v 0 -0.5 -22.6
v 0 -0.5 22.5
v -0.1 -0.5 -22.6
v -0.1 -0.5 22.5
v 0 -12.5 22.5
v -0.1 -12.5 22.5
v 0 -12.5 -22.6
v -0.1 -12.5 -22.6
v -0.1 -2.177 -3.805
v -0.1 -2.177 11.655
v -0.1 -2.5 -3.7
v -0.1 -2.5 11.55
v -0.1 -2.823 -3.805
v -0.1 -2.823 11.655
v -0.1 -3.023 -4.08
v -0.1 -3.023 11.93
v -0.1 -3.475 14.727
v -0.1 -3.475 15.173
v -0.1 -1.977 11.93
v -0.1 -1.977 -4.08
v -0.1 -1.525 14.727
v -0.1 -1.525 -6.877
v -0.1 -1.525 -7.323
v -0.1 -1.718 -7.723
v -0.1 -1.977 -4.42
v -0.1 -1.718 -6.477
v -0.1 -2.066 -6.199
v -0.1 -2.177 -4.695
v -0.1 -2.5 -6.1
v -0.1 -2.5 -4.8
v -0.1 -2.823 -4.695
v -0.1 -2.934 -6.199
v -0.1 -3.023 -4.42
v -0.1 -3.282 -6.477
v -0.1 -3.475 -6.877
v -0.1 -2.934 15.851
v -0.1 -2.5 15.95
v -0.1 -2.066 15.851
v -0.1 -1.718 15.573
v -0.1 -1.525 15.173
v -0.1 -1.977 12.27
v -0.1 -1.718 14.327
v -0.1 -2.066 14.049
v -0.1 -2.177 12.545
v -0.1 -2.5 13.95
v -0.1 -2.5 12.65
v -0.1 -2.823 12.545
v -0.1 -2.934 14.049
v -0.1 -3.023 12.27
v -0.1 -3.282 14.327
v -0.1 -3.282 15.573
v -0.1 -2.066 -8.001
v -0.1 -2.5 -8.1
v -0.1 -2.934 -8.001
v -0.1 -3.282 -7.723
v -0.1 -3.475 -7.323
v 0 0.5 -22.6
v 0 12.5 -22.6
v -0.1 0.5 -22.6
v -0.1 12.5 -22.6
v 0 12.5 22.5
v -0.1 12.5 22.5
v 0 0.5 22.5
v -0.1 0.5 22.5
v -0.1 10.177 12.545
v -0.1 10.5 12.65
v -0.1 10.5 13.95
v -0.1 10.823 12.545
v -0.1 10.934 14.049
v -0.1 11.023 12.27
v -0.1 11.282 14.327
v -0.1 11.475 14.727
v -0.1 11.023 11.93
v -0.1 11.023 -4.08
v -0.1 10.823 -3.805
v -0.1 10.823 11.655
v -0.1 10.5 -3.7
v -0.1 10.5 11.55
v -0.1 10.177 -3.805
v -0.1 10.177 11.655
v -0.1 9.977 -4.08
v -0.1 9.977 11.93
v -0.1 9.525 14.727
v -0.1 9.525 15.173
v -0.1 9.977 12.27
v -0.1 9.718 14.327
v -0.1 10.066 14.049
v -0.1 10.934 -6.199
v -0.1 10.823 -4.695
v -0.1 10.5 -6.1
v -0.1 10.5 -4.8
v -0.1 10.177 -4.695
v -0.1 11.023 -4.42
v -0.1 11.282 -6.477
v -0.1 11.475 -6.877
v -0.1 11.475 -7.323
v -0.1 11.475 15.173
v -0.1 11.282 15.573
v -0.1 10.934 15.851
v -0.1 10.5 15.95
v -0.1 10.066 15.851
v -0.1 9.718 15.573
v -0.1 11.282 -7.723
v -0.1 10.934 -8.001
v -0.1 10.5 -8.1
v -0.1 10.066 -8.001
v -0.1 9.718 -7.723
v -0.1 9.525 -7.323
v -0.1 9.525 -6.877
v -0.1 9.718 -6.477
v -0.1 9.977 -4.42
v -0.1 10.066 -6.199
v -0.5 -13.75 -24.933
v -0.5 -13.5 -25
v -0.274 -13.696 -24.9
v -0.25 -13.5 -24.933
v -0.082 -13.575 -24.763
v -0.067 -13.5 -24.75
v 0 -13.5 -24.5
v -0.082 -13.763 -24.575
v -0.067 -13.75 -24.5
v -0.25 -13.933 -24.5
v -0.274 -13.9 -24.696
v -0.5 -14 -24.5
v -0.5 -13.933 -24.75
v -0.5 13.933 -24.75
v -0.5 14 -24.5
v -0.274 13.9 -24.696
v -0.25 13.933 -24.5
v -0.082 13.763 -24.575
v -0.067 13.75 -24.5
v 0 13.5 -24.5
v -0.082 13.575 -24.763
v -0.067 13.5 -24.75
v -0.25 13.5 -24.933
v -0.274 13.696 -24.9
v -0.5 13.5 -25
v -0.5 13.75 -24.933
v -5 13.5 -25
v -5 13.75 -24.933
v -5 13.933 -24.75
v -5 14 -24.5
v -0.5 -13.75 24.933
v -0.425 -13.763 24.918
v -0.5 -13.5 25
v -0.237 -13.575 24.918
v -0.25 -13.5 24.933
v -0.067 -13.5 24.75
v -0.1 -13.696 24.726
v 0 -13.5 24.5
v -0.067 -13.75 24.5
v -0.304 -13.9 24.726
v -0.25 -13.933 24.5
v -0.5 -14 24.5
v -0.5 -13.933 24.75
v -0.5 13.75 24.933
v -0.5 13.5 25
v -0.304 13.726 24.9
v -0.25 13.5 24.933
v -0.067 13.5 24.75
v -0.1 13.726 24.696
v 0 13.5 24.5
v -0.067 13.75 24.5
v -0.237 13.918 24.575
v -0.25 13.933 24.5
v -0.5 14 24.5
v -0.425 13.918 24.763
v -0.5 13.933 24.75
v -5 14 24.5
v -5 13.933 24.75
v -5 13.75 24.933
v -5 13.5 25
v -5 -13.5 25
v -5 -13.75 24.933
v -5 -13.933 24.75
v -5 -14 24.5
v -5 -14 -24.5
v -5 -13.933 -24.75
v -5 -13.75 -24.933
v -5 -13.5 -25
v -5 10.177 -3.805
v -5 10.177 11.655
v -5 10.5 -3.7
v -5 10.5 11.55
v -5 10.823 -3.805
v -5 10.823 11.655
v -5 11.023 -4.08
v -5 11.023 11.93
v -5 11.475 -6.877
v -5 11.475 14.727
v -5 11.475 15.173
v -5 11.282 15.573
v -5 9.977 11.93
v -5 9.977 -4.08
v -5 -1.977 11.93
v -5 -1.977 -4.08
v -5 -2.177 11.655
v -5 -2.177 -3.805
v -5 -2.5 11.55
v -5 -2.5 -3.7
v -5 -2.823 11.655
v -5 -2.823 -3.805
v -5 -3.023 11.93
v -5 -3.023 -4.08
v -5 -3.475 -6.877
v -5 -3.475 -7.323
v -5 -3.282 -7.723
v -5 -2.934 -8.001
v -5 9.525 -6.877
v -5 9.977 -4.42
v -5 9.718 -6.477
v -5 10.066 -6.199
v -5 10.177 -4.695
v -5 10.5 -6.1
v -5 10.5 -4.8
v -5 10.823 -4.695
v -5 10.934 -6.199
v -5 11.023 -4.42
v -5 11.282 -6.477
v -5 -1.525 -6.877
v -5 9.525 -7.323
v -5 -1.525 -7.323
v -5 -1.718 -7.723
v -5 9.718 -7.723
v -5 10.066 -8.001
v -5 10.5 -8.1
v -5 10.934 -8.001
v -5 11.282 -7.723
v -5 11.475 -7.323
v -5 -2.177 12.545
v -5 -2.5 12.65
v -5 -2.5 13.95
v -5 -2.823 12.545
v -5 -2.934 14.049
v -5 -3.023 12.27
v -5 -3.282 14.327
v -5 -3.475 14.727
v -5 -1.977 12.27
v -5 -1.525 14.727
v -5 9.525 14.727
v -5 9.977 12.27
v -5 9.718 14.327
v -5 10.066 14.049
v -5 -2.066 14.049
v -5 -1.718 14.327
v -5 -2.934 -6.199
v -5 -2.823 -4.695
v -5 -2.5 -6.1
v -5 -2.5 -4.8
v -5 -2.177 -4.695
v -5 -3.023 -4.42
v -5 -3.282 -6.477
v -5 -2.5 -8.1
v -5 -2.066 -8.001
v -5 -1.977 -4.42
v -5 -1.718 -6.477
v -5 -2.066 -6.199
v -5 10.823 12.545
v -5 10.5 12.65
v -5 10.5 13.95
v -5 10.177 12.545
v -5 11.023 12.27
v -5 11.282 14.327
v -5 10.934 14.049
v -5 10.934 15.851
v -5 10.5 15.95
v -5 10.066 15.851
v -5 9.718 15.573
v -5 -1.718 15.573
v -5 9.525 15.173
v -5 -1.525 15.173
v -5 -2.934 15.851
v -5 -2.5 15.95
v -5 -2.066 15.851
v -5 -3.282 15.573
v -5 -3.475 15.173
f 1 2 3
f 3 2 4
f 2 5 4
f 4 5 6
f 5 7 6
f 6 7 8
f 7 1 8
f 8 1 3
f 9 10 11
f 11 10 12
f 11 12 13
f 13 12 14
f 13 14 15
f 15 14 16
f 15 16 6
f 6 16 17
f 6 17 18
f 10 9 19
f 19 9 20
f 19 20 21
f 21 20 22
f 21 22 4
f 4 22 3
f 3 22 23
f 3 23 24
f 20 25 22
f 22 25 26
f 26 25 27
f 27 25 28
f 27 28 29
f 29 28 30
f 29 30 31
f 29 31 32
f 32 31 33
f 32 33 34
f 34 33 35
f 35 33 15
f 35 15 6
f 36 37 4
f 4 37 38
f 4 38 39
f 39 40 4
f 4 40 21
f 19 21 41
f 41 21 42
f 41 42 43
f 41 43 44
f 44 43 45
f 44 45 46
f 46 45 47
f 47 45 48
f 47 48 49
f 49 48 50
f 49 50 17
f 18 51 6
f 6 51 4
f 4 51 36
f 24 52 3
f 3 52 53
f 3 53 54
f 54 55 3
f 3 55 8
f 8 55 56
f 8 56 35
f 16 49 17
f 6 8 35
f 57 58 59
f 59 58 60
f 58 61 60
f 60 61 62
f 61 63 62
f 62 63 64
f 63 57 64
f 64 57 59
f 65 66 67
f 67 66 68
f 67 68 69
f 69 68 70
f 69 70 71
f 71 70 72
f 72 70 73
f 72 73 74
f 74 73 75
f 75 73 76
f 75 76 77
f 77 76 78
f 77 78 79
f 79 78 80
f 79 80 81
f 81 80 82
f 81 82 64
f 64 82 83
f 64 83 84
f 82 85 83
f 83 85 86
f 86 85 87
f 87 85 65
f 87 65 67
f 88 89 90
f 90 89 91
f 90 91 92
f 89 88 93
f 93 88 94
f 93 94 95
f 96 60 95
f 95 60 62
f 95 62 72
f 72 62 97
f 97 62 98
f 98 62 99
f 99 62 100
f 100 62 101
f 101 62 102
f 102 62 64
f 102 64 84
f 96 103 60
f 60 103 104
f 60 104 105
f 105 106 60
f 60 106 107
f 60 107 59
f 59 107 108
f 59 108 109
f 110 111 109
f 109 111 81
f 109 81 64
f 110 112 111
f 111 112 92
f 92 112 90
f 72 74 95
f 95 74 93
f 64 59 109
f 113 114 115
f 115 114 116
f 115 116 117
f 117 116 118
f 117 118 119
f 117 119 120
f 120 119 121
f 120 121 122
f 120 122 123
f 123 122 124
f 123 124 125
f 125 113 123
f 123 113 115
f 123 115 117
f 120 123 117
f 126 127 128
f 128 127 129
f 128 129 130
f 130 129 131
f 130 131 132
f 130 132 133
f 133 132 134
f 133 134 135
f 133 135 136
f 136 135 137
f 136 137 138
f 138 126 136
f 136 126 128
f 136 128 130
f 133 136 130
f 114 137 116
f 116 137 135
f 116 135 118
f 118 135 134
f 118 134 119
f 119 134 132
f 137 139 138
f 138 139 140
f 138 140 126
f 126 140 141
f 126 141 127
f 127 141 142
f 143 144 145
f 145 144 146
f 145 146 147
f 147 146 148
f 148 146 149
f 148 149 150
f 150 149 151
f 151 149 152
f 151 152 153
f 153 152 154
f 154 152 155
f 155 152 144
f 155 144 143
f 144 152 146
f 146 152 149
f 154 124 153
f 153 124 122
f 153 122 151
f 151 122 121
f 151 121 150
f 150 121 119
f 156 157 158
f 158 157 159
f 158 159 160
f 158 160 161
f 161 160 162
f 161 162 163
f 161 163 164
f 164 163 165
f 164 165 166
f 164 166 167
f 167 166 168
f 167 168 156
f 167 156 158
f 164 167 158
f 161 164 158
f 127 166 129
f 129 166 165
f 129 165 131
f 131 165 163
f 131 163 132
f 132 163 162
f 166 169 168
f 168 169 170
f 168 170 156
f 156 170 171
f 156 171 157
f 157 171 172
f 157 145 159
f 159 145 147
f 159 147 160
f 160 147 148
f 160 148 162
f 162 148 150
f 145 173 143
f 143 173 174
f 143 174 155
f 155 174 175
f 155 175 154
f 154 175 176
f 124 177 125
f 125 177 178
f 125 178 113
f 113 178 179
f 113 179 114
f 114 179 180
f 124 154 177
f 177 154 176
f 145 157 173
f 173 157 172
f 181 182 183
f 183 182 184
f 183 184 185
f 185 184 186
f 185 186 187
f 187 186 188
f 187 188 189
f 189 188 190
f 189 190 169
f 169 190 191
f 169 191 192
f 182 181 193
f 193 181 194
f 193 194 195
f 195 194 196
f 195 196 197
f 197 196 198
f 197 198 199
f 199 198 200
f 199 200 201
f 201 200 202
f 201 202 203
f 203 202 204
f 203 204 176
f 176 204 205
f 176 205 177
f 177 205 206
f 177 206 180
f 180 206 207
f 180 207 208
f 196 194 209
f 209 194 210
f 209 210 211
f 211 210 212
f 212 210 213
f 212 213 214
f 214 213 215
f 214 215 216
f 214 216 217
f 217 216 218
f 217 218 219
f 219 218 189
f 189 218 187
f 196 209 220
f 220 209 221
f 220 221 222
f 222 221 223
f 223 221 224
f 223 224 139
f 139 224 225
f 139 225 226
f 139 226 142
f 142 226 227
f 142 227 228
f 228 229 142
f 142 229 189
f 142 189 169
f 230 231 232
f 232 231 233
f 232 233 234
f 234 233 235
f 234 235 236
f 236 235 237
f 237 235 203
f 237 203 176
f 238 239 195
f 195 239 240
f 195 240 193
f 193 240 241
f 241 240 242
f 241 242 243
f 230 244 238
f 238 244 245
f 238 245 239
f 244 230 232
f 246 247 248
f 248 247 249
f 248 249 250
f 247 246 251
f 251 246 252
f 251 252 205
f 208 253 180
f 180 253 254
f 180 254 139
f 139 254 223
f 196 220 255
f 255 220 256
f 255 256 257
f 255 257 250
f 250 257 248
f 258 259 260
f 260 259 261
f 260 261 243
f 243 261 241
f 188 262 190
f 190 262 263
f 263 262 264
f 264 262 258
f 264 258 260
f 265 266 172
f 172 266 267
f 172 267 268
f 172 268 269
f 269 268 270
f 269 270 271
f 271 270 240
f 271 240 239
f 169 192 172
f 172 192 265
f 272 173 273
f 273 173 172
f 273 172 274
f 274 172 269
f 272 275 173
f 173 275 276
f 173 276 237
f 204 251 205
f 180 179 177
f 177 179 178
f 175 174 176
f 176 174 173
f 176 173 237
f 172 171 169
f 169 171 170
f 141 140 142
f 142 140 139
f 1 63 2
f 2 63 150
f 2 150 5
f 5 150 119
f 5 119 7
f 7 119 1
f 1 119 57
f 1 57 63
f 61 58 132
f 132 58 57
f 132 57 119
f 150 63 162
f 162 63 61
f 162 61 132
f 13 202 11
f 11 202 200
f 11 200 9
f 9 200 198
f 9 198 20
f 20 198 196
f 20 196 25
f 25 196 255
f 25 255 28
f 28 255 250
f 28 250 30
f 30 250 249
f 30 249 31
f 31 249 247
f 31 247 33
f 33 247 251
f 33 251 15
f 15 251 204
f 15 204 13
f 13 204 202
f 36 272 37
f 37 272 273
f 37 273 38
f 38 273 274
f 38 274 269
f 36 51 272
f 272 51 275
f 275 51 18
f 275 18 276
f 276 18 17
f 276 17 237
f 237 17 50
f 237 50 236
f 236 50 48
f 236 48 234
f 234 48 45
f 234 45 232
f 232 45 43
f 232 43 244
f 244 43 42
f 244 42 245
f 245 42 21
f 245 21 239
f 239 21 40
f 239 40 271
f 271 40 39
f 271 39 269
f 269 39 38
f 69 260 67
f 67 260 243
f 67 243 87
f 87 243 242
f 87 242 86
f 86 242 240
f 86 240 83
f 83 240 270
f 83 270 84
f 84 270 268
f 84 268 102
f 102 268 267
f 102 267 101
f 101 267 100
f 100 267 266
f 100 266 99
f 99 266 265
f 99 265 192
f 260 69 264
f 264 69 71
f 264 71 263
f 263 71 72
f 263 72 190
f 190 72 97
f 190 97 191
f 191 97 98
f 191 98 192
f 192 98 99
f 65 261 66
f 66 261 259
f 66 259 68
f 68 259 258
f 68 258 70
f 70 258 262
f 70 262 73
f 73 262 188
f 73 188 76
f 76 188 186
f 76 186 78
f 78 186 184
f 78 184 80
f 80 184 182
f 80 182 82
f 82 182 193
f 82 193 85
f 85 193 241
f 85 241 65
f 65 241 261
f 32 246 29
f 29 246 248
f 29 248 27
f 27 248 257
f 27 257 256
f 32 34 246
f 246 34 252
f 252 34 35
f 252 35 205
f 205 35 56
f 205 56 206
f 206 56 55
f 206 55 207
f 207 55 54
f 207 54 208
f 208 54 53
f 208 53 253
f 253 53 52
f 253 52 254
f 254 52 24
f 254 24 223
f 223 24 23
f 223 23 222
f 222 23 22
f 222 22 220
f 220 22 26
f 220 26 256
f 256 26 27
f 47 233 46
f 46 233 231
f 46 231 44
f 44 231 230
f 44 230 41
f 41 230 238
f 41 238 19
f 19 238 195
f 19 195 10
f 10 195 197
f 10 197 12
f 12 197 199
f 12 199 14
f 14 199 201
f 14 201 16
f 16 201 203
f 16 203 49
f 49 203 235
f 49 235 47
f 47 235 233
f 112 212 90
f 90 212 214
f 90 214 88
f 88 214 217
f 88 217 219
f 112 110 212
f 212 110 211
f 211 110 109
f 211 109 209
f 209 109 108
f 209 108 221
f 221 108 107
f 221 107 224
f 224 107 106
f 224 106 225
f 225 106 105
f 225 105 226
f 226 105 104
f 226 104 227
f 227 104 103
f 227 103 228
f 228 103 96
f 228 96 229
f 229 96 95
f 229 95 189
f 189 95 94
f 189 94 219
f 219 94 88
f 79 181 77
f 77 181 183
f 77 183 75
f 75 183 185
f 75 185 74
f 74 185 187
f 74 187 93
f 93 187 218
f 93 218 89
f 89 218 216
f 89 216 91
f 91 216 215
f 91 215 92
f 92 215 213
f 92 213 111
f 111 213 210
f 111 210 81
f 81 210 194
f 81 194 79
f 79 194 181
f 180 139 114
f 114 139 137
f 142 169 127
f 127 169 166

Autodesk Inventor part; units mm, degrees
ref_plane "YZ Plane" through (0, 0, 0) normal (1, 0, 0) x (0, 1, 0)
ref_plane "XZ Plane" through (0, 0, 0) normal (0, 1, 0) x (-1, 0, 0)
ref_plane "XY Plane" through (0, 0, 0) normal (0, 0, 1) x (1, 0, 0)
sketch "Sketch1" plane through (0, 0, 0) normal (1, 0, 0) x (0, 1, 0)
  line L0 (14, 25) -> (-14, 25)
  line L1 (-14, 25) -> (-14, -25)
  line L2 (-14, -25) -> (14, -25)
  line L3 (14, -25) -> (14, 25)
  point P0 (0, 0)
  dimension "d0" = 50
  dimension "d1" = 25
  dimension "d2" = 28
  dimension "d3" = 14
extrude "Extrusion1" add sketch "Sketch1" against normal blind 5
sketch "Sketch2" plane through (0, 0, 0) normal (1, 0, 0) x (0, 0, -1)
  circle A0 centre (-12.1, 10.5) radius 0.55
  circle A1 centre (-14.95, 10.5) radius 1
  circle A2 centre (4.25, 10.5) radius 0.55
  circle A3 centre (7.1, 10.5) radius 1
  line L0 (25, -14) -> (25, 14) projected
  line L1 (-25, 14) -> (-25, -14) projected
  line L2 (-14.95, 10.5) -> (7.1, 10.5) construction
  line L3 (-25, -14) -> (25, -14) projected
  line L4 (25, 14) -> (-25, 14) projected
  line L5 (-8.2421, 4) -> (2.4524, 4) construction
  circle A4 centre (-12.1, -2.5) radius 0.55
  circle A5 centre (-14.95, -2.5) radius 1
  circle A6 centre (4.25, -2.5) radius 0.55
  circle A7 centre (7.1, -2.5) radius 1
  line L6 (-14.95, -2.5) -> (7.1, -2.5) construction
  point P0 (0, 0)
  dimension "d6" = 2
  dimension "d7" = 2
  dimension "d8" = 1.1
  dimension "d9" = 1.1
  dimension "d11" = 2.85
  dimension "d13" = 2.85
  dimension "d14" = 10.05
  dimension "d19" = 16.35
  dimension "d20" = 3.5
  dimension "d28" = 10
extrude "Extrusion2" cut sketch "Sketch2" against normal up to surface (5 mm away) contours A0 | A1 | A2 | A3 | A4 | A5 | A6 | A7
fillet "Fillet1" radius 0.5 8 edges at (0, 0, 25) (0, 14, 0) (0, 0, -25) (0, -14, 0) (-2.5, 14, 25) (-2.5, -14, 25) (-2.5, 14, -25) (-2.5, -14, -25)
sketch "Sketch3" plane through (0, 0, 0) normal (1, 0, 0) x (0, 0, -1)
  line L0 (-22.5, 12.5) -> (22.6, 12.5)
  line L1 (22.6, 12.5) -> (22.6, 0.5)
  line L2 (22.6, 0.5) -> (-22.5, 0.5)
  line L3 (-22.5, 0.5) -> (-22.5, 12.5)
  circle A0 centre (-14.95, 10.5) radius 1 projected
  line L4 (0, 0) -> (3.2775, 0) construction
  line L5 (-22.5, -12.5) -> (22.6, -12.5)
  line L6 (22.6, -12.5) -> (22.6, -0.5)
  line L7 (22.6, -0.5) -> (-22.5, -0.5)
  line L8 (-22.5, -0.5) -> (-22.5, -12.5)
  dimension "d21" = 45.1
  dimension "d22" = 7.55
  dimension "d23" = 10
  dimension "d24" = 2
extrude "Extrusion3" cut sketch "Sketch3" against normal blind 0.1
properties part number "Dual_Backplate"
